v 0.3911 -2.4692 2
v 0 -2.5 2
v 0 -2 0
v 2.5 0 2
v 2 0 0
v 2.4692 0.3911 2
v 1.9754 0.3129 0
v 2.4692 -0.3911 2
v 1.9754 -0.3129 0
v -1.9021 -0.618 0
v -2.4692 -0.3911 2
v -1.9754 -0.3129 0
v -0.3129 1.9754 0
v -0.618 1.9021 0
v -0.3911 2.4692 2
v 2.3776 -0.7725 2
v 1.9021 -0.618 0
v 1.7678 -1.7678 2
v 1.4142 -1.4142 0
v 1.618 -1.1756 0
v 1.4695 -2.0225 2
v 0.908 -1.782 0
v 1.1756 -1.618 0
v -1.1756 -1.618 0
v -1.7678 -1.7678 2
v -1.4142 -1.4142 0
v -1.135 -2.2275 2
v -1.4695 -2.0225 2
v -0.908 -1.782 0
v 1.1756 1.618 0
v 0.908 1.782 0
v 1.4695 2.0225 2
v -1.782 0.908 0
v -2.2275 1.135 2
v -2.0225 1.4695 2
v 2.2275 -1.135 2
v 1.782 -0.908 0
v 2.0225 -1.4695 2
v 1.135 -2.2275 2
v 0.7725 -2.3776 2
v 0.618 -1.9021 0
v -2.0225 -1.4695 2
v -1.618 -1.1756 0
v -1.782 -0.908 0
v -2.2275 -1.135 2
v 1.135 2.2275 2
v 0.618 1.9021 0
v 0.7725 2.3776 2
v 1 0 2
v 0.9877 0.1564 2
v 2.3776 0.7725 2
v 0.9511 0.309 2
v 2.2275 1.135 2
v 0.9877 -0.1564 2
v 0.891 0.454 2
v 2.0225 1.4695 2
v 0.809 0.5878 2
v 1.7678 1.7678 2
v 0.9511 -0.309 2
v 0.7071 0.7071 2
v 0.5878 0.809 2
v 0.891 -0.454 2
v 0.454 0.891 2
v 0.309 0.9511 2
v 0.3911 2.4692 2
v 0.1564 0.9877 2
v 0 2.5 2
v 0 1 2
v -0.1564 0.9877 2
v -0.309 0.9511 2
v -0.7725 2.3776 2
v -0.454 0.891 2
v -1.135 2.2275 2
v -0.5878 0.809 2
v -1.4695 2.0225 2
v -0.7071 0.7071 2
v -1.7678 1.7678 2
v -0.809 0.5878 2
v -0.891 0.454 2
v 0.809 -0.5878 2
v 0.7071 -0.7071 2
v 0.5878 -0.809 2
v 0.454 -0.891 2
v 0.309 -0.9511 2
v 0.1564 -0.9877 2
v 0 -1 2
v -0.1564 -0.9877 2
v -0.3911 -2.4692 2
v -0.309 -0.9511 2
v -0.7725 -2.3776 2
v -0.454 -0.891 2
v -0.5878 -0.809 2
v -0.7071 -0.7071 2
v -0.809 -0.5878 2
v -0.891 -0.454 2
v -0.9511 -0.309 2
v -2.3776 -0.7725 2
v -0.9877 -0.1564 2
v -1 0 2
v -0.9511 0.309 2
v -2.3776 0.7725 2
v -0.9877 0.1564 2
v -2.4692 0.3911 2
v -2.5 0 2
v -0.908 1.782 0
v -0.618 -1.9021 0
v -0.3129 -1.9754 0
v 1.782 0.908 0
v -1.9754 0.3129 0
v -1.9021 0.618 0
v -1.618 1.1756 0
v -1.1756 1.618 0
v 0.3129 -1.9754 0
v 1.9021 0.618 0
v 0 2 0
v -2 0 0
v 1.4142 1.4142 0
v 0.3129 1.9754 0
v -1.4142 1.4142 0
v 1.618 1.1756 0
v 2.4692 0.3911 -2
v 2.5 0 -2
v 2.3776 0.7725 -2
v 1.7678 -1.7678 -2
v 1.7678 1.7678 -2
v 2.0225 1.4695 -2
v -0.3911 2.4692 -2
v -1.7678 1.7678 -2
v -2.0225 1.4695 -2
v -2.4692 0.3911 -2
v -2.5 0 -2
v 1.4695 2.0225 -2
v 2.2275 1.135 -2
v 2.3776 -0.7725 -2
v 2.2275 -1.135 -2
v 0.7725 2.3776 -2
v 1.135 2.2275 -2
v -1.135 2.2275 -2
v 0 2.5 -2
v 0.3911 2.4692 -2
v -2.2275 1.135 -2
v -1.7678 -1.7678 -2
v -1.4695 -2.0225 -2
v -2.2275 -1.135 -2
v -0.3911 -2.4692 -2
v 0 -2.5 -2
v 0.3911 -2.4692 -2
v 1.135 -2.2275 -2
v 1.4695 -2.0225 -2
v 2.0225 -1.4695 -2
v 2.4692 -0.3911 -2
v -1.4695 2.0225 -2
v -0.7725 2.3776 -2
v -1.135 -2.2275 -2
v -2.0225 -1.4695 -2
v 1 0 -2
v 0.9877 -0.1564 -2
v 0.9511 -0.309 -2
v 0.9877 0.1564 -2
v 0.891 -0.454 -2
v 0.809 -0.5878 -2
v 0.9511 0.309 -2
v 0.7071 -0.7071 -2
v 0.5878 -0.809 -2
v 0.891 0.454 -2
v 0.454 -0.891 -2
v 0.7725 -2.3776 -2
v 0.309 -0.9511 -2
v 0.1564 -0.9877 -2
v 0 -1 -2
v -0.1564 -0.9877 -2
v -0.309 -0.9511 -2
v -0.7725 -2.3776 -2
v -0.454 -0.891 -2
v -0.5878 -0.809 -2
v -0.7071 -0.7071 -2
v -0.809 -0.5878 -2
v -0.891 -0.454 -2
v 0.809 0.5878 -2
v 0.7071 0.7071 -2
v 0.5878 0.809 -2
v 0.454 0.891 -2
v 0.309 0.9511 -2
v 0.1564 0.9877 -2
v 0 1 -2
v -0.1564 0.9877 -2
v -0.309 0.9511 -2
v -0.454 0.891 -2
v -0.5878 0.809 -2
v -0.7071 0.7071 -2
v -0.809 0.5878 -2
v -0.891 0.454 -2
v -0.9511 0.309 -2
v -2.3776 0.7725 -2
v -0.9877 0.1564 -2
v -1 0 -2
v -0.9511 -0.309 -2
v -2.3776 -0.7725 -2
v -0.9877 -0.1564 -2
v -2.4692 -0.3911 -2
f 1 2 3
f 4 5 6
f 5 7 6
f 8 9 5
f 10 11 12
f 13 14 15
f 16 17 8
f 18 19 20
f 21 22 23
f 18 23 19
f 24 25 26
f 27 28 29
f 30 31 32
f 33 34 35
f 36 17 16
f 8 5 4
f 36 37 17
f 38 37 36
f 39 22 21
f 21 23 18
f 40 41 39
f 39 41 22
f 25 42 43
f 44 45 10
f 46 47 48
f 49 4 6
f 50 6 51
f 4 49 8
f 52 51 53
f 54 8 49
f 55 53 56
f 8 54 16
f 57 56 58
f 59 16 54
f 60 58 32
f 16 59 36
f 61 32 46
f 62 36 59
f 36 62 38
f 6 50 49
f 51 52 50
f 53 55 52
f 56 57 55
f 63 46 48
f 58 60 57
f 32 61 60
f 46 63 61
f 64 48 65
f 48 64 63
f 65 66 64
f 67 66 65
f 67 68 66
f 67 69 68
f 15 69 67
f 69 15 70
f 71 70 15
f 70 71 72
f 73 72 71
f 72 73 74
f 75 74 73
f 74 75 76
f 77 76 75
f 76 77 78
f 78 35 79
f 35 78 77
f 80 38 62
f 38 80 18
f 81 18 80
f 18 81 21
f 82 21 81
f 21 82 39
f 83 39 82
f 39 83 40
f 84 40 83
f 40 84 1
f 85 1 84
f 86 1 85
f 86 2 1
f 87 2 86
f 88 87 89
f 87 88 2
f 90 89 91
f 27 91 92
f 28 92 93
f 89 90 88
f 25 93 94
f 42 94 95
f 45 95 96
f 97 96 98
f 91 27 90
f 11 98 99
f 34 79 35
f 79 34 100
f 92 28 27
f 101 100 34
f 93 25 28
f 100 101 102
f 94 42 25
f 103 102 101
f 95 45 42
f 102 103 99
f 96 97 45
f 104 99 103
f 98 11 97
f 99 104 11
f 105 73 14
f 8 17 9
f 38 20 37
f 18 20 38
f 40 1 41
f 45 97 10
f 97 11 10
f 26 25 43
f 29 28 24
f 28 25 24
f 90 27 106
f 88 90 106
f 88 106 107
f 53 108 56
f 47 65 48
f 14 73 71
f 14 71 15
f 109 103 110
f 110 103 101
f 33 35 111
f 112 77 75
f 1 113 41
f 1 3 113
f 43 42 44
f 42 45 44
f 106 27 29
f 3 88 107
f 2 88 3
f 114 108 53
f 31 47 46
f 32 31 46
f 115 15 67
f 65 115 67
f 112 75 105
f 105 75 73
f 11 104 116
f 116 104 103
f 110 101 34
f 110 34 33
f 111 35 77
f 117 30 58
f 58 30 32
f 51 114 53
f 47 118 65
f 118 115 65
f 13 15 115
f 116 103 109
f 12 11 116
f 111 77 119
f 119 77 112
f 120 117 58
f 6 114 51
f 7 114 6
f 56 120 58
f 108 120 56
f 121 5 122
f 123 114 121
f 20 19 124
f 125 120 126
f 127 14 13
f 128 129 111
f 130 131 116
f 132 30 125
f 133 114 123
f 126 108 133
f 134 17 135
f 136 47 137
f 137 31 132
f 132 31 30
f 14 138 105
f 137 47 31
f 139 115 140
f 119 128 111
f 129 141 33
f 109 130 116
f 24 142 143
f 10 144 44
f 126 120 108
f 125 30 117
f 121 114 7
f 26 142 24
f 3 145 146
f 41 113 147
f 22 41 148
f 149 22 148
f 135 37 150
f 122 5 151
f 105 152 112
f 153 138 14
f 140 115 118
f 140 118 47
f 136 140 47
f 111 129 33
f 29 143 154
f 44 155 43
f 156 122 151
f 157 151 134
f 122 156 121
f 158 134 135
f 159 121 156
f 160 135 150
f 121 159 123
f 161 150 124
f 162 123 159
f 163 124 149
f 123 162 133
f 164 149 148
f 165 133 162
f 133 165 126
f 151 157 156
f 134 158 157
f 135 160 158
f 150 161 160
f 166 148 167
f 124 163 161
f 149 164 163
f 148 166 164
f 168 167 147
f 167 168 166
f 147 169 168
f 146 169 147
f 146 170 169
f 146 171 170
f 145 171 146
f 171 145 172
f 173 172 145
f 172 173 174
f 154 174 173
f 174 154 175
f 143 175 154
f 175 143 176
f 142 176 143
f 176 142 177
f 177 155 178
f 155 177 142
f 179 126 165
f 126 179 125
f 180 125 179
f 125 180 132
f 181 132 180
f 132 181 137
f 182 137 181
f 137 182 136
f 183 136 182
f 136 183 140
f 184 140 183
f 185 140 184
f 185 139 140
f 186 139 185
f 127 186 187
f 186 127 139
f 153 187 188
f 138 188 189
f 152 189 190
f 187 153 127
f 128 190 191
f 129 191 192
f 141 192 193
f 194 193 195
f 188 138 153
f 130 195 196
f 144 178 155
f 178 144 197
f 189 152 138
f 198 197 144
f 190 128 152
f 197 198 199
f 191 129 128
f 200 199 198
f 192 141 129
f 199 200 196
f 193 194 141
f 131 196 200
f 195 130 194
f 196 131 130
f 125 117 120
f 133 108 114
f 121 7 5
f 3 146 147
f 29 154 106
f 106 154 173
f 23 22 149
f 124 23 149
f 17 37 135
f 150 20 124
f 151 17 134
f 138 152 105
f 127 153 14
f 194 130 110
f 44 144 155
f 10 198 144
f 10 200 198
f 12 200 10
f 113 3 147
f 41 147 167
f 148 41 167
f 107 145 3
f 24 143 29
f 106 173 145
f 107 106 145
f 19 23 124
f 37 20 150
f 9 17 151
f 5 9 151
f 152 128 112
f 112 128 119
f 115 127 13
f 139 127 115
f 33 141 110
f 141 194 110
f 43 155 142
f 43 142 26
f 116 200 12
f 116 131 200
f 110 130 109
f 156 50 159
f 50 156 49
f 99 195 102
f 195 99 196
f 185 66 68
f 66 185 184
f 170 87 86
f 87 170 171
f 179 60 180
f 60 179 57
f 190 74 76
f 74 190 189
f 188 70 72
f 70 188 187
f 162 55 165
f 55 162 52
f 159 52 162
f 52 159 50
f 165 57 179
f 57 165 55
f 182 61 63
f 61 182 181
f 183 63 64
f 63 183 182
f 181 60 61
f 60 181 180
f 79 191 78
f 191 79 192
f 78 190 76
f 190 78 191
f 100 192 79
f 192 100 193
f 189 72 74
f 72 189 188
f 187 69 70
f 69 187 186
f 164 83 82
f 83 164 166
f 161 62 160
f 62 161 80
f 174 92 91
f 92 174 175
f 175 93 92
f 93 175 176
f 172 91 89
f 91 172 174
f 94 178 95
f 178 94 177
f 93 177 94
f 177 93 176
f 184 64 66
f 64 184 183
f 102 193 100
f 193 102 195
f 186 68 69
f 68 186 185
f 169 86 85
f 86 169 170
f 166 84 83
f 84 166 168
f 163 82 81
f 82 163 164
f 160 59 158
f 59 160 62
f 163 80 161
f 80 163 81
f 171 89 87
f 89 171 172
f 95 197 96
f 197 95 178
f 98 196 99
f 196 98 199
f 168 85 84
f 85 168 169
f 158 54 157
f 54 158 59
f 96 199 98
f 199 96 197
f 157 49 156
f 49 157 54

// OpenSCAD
module wheel(){
    c1 = 2.5;
    c2 = 2;
    half_height = 4/2;
    difference(){
        union(){
            cylinder(h=half_height, r1=c2, r2=c1, center=false, $fn=40);
            translate([0,0,-half_height]) cylinder(h=half_height, r1=c1, r2=c2, center=false, $fn=40);
        }
        translate([0,0,-4]) cylinder(h=8, r1=1, r2=1, center=false, $fn=40);
    }
}

wheel();
